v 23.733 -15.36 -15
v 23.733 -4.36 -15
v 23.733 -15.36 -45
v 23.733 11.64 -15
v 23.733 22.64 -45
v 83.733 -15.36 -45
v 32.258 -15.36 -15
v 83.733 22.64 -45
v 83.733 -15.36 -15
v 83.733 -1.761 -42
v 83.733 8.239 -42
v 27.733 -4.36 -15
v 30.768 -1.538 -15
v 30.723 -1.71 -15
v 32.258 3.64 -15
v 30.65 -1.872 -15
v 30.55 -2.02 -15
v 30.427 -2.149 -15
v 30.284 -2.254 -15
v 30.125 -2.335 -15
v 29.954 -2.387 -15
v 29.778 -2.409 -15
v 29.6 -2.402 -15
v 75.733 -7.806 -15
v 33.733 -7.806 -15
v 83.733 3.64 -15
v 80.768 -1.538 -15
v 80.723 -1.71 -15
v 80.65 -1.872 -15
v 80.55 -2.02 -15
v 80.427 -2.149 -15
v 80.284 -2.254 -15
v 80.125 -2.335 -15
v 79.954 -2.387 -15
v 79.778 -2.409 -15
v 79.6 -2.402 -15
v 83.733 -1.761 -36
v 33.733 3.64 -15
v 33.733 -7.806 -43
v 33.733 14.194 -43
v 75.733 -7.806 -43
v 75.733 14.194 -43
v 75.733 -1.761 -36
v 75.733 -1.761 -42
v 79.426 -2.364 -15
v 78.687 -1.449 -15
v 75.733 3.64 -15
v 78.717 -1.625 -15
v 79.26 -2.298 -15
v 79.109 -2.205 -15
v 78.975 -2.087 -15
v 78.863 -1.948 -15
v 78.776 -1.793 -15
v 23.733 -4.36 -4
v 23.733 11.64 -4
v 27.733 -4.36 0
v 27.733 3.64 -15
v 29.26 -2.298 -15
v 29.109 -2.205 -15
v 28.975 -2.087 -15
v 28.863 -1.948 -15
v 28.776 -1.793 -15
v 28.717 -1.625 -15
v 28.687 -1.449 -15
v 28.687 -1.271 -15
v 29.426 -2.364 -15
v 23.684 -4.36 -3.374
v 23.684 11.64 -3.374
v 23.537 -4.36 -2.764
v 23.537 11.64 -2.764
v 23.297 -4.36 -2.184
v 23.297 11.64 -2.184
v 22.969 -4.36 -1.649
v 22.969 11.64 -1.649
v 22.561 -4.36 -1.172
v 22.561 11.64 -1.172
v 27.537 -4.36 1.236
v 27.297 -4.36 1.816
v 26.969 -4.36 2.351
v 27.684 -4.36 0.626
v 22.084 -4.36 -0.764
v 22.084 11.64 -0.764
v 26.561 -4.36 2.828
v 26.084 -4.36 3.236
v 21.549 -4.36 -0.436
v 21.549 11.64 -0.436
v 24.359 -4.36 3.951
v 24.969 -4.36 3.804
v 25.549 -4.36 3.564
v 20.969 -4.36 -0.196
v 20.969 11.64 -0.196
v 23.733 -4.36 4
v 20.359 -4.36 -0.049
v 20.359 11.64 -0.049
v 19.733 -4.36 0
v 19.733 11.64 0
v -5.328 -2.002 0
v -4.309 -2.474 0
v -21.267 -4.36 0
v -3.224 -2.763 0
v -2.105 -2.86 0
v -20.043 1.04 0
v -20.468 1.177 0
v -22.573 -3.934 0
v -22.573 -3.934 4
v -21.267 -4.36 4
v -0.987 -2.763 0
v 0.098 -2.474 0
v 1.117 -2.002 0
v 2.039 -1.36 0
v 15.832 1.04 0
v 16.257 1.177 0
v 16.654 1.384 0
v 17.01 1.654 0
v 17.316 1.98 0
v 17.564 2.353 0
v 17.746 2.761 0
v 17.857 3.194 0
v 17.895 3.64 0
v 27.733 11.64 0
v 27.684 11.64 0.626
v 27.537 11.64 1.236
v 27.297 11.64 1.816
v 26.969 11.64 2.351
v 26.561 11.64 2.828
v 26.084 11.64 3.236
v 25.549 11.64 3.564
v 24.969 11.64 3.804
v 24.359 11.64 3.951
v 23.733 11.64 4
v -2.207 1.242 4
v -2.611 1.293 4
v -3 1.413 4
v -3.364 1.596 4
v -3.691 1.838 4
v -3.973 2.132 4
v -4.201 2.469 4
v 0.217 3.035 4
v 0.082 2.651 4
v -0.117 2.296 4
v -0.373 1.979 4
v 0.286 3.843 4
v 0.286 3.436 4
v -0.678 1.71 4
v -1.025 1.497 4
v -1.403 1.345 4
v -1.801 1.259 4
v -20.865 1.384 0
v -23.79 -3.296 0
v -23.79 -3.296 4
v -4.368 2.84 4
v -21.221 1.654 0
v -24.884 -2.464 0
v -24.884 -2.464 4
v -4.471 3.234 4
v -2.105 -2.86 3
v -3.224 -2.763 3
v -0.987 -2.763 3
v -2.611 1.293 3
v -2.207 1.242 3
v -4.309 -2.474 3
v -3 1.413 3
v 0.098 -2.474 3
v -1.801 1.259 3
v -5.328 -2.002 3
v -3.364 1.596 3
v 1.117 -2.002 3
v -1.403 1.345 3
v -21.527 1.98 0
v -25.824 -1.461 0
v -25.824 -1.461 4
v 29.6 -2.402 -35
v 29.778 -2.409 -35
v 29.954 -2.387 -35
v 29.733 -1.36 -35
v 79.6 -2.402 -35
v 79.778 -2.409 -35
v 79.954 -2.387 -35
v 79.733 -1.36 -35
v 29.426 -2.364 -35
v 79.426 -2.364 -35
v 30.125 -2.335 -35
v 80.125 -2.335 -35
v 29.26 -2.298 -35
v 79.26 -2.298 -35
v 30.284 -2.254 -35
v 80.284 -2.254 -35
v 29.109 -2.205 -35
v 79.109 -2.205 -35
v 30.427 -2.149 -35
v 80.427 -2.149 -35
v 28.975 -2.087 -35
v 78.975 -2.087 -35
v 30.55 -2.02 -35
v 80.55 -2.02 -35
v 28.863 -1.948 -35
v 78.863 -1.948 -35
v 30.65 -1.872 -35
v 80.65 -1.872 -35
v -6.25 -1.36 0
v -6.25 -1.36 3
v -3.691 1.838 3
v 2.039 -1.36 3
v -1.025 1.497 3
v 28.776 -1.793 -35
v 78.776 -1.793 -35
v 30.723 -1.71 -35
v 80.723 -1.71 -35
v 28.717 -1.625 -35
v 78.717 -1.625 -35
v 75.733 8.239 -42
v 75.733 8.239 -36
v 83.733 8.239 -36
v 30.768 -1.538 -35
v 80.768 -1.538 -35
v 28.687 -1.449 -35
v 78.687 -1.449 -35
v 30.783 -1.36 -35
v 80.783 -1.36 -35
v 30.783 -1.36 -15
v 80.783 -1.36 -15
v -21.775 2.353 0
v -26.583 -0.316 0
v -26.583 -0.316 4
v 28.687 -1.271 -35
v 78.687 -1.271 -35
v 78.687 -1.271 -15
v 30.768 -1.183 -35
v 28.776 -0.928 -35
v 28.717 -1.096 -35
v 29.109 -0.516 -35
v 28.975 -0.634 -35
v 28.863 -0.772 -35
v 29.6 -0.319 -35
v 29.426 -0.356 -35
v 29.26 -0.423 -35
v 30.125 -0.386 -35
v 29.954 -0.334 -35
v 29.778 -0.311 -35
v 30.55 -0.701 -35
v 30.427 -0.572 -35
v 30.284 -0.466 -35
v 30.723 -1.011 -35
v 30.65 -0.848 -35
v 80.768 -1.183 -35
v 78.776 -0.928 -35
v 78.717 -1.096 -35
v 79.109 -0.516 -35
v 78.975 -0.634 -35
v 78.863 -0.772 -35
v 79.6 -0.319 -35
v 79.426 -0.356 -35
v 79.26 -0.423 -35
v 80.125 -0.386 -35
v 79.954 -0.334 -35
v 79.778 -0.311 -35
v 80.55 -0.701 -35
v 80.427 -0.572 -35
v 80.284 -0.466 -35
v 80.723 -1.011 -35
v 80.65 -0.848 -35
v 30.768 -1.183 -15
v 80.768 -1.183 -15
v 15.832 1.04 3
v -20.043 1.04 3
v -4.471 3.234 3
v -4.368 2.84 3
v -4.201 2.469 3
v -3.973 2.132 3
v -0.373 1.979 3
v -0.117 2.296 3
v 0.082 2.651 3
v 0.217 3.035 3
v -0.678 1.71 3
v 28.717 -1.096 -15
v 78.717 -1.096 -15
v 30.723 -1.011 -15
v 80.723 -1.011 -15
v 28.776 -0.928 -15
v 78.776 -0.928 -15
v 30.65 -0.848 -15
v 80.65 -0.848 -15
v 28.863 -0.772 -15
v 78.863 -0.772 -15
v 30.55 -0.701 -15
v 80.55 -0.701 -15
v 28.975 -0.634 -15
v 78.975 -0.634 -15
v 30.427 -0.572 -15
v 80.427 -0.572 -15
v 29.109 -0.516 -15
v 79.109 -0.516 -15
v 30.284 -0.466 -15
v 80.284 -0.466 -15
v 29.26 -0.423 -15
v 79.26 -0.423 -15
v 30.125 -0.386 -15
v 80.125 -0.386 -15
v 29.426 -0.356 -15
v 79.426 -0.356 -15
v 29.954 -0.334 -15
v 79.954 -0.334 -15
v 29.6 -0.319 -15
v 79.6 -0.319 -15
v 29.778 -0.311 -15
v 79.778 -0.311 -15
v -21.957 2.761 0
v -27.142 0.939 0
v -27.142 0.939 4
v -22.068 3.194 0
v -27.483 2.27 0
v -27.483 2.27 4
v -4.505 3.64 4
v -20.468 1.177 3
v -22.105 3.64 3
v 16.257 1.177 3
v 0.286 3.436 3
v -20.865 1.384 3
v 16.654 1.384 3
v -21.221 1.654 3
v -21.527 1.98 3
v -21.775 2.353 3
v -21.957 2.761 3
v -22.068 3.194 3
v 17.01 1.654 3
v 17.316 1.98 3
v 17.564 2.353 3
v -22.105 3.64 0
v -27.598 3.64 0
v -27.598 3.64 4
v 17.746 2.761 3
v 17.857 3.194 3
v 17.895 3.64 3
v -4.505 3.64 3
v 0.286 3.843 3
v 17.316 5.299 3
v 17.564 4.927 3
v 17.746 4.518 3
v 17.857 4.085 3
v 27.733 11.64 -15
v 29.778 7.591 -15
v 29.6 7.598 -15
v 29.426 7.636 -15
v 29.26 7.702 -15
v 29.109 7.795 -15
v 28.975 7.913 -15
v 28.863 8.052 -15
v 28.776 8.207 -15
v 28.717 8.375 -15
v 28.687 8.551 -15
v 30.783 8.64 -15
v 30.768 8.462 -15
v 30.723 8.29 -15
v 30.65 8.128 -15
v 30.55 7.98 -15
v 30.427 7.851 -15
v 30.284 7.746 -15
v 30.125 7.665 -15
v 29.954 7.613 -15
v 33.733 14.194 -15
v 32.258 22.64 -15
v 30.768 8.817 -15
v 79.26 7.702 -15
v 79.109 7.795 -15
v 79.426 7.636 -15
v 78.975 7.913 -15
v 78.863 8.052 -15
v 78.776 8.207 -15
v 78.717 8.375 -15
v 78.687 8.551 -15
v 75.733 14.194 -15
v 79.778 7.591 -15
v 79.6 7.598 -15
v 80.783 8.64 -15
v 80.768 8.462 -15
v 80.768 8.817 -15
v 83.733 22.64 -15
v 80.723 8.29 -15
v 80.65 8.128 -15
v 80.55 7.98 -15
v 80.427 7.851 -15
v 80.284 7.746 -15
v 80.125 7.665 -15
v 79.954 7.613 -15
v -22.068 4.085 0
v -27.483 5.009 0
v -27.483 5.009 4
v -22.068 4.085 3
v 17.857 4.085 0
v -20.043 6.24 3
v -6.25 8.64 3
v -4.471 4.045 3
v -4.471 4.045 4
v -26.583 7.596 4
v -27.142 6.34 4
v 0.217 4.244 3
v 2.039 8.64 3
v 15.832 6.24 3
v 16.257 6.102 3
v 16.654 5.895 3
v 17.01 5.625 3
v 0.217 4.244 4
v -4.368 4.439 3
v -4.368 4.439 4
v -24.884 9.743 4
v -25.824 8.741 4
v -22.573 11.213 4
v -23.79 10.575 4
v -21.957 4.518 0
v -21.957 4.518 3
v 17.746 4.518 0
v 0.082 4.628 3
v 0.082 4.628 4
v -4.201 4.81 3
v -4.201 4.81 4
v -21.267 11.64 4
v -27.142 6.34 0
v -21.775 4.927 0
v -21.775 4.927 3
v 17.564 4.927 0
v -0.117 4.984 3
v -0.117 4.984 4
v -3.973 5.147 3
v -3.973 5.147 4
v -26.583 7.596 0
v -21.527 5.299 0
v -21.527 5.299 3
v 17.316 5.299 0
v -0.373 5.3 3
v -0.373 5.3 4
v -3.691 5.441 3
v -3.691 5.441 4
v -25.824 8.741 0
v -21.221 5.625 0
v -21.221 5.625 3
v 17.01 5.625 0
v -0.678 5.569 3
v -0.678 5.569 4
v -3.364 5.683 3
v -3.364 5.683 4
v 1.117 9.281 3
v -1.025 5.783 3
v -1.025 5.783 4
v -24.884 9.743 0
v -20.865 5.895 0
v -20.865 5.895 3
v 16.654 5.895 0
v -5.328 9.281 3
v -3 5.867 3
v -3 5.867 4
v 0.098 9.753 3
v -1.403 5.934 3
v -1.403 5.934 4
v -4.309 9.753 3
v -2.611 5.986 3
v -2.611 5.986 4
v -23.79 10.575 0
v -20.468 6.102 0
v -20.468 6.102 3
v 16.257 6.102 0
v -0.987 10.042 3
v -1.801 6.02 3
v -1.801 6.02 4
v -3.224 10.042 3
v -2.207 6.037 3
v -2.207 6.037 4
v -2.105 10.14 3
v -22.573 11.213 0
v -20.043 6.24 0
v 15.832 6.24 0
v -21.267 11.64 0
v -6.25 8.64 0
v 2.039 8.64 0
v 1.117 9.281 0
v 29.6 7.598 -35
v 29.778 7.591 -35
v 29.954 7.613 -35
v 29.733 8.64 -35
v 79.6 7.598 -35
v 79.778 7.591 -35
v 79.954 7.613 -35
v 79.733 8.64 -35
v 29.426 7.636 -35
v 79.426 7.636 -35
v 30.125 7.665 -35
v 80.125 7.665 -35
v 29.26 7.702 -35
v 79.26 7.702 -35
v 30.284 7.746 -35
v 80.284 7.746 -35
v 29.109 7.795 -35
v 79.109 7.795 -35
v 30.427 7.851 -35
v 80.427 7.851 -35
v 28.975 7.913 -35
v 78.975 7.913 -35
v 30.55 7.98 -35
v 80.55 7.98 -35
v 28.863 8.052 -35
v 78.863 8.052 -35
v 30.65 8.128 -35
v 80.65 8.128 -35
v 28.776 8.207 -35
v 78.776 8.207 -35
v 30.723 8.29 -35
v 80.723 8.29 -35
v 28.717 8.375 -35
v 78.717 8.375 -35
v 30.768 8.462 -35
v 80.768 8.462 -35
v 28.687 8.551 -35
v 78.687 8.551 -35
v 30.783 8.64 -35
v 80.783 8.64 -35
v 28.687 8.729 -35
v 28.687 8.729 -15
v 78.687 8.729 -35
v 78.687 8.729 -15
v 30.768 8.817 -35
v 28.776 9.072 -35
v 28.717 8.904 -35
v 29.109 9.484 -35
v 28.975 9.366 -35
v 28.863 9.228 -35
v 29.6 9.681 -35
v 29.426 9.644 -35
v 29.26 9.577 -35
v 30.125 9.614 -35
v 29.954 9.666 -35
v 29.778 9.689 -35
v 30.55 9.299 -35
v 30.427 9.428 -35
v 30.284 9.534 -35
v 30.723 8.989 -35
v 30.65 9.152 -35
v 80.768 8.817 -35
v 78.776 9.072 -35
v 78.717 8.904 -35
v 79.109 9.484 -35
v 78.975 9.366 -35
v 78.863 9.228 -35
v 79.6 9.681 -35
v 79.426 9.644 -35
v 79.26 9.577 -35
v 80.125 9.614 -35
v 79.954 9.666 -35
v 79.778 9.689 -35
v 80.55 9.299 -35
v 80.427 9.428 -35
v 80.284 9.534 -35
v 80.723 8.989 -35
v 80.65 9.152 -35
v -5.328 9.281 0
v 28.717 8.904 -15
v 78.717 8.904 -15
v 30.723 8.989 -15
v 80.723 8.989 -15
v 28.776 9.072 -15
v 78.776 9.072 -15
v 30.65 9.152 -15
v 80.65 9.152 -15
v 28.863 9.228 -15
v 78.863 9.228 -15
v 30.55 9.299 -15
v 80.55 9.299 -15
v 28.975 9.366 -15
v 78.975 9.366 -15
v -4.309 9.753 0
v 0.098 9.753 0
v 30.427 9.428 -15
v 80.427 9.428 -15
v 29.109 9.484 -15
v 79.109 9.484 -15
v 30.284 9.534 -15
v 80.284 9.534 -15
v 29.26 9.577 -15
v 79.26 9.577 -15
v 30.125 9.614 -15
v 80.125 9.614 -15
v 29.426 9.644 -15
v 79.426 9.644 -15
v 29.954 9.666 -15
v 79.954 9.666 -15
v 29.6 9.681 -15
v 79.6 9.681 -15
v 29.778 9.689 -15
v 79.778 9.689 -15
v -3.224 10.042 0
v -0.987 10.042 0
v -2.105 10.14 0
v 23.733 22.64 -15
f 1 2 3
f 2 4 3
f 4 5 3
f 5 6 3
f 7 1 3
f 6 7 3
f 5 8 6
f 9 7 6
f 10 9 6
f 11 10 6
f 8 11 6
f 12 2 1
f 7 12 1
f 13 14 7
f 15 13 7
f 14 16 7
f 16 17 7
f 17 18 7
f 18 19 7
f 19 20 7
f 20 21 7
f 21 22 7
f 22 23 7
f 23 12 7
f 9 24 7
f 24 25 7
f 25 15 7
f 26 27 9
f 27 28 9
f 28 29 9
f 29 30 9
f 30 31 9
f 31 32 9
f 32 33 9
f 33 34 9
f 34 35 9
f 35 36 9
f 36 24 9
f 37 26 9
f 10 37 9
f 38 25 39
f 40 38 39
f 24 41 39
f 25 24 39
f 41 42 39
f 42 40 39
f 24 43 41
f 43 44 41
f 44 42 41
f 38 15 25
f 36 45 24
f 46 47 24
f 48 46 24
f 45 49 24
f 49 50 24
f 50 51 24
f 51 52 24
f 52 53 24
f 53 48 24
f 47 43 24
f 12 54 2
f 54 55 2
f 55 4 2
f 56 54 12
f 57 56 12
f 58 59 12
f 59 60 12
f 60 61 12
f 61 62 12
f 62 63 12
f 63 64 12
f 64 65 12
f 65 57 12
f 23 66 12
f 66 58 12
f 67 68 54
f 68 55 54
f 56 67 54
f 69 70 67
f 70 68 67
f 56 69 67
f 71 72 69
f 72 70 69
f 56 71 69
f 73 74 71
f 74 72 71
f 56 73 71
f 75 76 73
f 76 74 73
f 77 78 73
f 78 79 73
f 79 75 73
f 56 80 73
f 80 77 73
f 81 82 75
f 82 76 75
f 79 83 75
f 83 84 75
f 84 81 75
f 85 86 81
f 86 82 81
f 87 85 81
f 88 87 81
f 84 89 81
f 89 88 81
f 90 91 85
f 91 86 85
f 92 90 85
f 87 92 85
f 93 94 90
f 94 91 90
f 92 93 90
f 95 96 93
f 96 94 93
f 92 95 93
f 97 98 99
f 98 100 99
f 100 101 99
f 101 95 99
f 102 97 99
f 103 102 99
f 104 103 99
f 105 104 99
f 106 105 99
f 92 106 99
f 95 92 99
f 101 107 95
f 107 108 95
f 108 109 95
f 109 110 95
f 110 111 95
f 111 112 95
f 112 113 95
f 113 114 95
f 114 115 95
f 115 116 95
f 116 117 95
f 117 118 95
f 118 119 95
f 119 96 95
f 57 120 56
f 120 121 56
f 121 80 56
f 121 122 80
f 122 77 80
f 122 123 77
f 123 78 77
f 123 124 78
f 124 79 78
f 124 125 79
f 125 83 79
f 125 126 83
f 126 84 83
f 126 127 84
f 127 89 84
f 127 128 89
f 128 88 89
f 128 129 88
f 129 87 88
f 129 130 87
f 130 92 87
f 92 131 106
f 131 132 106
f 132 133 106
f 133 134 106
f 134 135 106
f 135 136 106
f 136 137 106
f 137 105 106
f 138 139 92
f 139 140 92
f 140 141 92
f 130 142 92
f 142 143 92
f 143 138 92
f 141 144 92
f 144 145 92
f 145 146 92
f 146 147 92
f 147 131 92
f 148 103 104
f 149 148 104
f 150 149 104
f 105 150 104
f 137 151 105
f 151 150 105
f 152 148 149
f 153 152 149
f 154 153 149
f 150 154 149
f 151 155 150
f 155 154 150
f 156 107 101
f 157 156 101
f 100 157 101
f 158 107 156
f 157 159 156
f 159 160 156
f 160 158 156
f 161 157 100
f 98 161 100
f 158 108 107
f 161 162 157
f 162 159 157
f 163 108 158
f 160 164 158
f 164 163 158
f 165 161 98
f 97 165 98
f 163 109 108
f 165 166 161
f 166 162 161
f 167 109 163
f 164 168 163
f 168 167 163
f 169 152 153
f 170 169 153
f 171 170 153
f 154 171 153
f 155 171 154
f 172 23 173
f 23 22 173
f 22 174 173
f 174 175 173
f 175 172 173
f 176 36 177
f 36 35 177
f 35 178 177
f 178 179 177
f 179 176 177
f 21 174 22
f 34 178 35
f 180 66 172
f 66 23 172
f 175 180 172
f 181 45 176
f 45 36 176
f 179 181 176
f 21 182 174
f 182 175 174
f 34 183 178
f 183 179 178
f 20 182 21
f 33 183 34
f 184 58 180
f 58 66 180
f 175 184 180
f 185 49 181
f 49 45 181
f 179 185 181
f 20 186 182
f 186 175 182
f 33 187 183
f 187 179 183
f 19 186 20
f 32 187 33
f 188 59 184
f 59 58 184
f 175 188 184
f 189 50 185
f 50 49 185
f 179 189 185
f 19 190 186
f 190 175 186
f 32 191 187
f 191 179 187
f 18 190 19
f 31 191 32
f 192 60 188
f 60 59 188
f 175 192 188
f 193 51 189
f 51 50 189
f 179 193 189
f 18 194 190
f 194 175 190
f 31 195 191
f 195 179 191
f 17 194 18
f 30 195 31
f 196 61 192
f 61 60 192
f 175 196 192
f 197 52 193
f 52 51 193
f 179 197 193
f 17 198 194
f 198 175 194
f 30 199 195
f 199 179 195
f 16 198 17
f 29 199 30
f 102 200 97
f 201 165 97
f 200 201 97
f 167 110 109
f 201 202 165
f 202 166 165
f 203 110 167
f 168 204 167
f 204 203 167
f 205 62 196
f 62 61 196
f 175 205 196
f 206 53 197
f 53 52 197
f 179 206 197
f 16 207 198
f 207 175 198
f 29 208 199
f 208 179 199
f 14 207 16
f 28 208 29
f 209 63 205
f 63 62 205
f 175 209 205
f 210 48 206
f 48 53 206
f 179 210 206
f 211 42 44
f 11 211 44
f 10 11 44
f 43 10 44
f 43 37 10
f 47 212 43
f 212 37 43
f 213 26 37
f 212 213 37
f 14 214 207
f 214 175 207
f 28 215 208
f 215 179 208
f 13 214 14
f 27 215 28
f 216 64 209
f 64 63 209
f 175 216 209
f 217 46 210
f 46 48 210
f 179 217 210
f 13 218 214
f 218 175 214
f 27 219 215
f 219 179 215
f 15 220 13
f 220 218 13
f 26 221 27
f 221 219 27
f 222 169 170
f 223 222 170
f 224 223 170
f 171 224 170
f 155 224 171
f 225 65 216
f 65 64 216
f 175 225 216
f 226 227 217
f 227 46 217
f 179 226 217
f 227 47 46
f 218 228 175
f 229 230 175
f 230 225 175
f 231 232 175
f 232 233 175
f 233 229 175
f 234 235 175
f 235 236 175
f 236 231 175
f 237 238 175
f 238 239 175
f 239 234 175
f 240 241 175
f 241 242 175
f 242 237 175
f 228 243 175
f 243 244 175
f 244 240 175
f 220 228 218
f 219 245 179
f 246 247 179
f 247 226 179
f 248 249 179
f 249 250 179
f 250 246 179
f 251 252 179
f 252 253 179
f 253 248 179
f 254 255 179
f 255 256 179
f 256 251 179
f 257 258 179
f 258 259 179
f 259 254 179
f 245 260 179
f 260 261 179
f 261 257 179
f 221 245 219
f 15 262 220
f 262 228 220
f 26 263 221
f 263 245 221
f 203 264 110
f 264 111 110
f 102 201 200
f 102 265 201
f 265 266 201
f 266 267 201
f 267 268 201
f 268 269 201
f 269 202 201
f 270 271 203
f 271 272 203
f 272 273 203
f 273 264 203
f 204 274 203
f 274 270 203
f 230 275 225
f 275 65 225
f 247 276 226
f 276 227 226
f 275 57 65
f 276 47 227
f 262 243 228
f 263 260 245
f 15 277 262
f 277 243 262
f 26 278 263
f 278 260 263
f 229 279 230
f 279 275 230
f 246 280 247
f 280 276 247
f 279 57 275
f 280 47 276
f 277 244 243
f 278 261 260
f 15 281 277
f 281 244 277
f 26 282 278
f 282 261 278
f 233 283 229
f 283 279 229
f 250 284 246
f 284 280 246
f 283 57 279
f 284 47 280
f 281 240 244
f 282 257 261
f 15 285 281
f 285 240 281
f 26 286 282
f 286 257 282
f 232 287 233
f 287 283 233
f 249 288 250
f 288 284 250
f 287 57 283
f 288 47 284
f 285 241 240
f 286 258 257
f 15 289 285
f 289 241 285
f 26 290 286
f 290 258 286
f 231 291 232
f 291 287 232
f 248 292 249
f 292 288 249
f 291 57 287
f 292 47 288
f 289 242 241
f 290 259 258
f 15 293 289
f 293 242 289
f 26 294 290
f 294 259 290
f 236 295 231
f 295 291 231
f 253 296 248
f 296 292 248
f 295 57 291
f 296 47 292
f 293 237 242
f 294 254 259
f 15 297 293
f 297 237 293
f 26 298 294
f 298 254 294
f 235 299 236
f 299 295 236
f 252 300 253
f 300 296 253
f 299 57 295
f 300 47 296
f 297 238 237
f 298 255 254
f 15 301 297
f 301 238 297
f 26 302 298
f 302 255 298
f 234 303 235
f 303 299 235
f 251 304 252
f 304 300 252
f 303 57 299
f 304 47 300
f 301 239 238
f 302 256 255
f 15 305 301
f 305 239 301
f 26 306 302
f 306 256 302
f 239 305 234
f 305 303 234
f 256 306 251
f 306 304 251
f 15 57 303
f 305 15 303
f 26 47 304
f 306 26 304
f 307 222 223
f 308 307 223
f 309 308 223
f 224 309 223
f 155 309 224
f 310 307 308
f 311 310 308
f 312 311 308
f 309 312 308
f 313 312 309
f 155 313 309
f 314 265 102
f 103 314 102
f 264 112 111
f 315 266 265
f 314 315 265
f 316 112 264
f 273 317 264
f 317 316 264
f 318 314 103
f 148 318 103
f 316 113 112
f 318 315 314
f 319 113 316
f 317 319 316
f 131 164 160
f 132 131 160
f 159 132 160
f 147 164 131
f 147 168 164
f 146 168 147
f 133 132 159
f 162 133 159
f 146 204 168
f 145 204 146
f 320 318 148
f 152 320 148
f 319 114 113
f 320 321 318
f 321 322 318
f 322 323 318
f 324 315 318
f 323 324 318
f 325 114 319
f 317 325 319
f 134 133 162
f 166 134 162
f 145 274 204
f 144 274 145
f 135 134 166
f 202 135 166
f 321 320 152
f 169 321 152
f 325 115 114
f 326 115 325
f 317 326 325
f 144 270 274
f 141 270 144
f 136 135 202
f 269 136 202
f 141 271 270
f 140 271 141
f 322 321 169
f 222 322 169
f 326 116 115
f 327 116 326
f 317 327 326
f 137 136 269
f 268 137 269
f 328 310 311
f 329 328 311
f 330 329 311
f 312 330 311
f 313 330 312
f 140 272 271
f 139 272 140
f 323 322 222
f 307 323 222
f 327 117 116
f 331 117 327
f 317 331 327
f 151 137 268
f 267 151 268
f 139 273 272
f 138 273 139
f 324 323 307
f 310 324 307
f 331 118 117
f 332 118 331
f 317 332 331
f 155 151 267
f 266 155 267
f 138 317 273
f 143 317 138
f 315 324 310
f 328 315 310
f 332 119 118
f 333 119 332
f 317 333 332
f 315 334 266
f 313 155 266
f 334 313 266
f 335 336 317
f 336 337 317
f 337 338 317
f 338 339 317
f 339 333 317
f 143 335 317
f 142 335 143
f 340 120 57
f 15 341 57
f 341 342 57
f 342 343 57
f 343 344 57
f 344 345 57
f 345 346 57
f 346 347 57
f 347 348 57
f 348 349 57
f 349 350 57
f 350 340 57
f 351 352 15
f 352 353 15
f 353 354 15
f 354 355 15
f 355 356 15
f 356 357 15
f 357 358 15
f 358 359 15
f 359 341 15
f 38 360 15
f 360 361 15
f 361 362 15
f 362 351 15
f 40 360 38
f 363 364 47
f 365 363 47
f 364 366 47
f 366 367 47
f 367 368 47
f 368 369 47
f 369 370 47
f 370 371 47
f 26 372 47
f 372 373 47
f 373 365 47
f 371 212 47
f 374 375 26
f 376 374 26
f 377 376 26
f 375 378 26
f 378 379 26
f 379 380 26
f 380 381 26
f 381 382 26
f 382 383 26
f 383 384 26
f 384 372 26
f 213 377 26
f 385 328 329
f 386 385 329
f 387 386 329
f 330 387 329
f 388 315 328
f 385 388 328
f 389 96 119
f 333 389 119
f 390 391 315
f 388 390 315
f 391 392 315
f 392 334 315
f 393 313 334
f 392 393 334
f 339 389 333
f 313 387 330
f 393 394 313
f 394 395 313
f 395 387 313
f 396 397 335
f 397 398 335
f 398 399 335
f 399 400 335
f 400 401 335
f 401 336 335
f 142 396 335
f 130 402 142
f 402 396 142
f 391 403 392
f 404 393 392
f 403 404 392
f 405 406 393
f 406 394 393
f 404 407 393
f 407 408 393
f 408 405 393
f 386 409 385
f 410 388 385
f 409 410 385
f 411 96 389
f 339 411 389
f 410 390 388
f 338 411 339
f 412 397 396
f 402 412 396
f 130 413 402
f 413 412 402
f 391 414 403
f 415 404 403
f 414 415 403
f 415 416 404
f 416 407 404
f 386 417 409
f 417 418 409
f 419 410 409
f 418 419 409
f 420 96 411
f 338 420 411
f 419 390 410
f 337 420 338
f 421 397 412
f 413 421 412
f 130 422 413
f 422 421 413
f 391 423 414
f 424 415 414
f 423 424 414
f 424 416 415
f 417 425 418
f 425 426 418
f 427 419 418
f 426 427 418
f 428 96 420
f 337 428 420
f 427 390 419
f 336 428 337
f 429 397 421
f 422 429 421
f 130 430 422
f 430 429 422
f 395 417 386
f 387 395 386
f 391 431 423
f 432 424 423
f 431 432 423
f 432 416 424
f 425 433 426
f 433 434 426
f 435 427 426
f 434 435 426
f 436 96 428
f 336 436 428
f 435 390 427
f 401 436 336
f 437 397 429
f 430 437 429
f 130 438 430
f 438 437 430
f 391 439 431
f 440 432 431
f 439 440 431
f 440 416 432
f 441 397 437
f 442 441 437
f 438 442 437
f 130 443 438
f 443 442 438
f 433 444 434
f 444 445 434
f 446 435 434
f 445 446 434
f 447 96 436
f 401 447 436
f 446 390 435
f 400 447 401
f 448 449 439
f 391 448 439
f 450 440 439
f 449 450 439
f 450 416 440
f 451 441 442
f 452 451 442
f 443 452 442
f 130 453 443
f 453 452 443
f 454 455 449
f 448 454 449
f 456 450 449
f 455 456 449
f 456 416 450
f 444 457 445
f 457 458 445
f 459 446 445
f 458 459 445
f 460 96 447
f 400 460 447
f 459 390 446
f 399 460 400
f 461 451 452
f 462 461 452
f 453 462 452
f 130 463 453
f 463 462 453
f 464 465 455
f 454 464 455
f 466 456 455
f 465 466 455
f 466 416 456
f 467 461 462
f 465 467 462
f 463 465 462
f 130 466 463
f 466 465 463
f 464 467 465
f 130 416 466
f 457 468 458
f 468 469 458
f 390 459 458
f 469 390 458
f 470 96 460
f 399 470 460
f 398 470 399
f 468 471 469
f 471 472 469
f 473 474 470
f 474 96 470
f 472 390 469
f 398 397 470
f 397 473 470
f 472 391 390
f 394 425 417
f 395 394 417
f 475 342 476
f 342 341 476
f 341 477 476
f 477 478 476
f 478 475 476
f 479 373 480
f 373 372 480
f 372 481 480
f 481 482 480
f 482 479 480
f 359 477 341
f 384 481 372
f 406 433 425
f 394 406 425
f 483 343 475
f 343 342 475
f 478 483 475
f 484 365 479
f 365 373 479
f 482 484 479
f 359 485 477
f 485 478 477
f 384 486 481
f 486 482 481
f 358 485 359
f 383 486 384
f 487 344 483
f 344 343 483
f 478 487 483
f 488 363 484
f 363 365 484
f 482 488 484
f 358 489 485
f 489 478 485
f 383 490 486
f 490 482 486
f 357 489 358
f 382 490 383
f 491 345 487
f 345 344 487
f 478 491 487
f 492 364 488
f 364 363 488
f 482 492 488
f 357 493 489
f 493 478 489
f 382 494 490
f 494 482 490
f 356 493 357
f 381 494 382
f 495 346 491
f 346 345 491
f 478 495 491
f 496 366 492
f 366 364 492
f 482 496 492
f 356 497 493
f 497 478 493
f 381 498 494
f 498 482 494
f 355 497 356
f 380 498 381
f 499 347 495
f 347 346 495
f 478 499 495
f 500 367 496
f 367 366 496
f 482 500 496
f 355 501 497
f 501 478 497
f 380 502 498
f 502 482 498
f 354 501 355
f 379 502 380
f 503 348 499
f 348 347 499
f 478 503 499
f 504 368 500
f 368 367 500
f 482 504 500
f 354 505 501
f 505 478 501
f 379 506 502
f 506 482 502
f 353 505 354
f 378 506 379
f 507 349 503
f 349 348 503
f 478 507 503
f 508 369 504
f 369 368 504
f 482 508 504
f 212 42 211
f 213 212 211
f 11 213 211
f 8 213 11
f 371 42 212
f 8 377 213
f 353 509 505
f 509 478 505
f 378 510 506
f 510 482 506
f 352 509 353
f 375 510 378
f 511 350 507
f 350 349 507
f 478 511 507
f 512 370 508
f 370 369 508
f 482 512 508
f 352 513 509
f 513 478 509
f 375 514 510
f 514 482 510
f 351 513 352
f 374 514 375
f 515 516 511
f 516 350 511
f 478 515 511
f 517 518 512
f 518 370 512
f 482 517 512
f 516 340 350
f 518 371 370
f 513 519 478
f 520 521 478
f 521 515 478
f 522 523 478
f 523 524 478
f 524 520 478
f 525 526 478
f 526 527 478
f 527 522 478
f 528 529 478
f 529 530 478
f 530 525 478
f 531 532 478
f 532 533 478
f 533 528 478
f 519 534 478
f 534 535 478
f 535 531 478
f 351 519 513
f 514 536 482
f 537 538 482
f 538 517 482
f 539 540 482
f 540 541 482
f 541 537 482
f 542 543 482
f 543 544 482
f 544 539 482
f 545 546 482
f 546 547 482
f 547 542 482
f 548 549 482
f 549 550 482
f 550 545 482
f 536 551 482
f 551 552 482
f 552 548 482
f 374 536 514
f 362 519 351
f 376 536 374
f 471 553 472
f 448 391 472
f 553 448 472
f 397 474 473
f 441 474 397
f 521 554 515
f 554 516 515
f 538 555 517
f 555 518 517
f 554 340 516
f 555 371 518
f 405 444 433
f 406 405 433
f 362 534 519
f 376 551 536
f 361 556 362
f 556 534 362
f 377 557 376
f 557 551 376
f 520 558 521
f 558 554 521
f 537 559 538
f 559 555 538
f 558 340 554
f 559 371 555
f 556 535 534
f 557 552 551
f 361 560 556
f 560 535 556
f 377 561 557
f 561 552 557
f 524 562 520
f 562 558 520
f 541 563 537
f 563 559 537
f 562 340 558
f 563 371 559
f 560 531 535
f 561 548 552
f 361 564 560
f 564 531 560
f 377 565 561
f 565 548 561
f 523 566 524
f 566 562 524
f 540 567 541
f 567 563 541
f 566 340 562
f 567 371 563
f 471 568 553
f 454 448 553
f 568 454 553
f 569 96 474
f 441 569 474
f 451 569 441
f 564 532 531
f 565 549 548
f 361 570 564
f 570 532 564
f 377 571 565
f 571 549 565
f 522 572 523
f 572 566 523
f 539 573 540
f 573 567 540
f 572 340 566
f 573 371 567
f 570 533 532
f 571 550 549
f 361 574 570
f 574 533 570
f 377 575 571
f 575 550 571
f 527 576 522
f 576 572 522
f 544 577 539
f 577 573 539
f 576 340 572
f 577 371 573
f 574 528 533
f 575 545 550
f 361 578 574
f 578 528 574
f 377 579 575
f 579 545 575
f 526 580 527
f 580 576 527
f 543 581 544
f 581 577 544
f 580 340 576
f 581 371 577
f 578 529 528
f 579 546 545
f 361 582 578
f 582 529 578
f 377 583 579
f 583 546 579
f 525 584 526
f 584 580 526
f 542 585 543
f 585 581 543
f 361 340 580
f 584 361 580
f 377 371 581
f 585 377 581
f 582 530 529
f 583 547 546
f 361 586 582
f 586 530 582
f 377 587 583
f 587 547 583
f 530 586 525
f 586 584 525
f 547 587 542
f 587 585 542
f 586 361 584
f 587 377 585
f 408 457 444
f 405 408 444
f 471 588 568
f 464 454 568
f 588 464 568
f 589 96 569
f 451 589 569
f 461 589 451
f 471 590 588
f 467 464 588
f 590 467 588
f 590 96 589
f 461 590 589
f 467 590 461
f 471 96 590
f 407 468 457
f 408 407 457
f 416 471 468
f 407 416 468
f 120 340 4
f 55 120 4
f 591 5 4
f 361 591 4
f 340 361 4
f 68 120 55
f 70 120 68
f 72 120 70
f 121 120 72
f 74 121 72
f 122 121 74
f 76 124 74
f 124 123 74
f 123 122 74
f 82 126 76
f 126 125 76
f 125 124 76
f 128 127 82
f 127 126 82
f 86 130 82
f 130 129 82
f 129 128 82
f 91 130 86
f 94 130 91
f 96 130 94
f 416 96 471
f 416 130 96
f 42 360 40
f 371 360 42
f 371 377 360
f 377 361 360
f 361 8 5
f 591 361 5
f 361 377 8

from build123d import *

# Parameters (mm, degrees)
BOSS_EXTRUDE1_DEPTH  = 4
CUT_EXTRUDE1_DEPTH   = 3
SKETCH5_W            = 49
SKETCH5_H            = 16
BOSS_EXTRUDE2_DEPTH  = 4
BOSS_EXTRUDE15_DEPTH = 30
SKETCH20_R           = 2.4
CUT_EXTRUDE26_DEPTH  = 1
FILLET8_R            = 4
FILLET12_R           = 4
CUT_EXTRUDE_8_DEPTH  = 28
SKETCH_6_R           = 1.05
CUT_EXTRUDE_9_DEPTH  = 20
SKETCH_8_W           = 6
SKETCH_8_H           = 10
CUT_EXTRUDE_10_DEPTH = 8


with BuildPart() as part:
    # Sketch2 → Boss-Extrude1 (new body)
    with BuildSketch(Plane.XY):
        with BuildLine():
            Line((23.733047461, 11.63962887), (23.733047461, -4.36037113))
            Line((23.733047461, -4.36037113), (-21.266952539, -4.36037113))
            ThreePointArc((-21.266952539, -4.36037113), (-27.597931628, 3.63962887), (-21.266952539, 11.63962887))
            Line((-21.266952539, 11.63962887), (23.733047461, 11.63962887))
        make_face()
    extrude(amount=BOSS_EXTRUDE1_DEPTH)

    # Sketch1 → Cut-Extrude1 (cut)
    with BuildSketch(Plane.XY):
        with BuildLine():
            Line((-6.25004119, 8.63962887), (-20.04279291, 6.23962887))
            ThreePointArc((-20.04279291, 6.23962887), (-22.105421524, 3.63962887), (-20.04279291, 1.03962887))
            Line((-20.04279291, 1.03962887), (-6.25004119, -1.36037113))
            ThreePointArc((-6.25004119, -1.36037113), (-2.105421524, -2.86037113), (2.039198142, -1.36037113))
            Line((2.039198142, -1.36037113), (15.831949862, 1.03962887))
            ThreePointArc((15.831949862, 1.03962887), (17.894578476, 3.63962887), (15.831949862, 6.23962887))
            Line((15.831949862, 6.23962887), (2.039198142, 8.63962887))
            ThreePointArc((2.039198142, 8.63962887), (-2.105421524, 10.13962887), (-6.25004119, 8.63962887))
        make_face()
    extrude(amount=CUT_EXTRUDE1_DEPTH, mode=Mode.SUBTRACT)

    # Sketch5 → Boss-Extrude2 (add)
    with BuildSketch(Plane(origin=(23.733047461, 0, 0), x_dir=(0, 0, -1), z_dir=(1, 0, 0))):
        with Locations((20.5, 3.63962887)):
            Rectangle(SKETCH5_W, SKETCH5_H)
    extrude(amount=BOSS_EXTRUDE2_DEPTH)

    # Sketch6 → Boss-Extrude15 (add)
    with BuildSketch(Plane(origin=(0, 0, -45), x_dir=(-1, 0, 0), z_dir=(0, 0, -1))):
        Polygon((-30.946192459, -15.36037113), (-83.733047461, -15.36037113), (-83.733047461, 22.63962887), (-23.733047461, 22.63962887), (-23.733047461, -15.36037113), align=None)
    extrude(amount=-BOSS_EXTRUDE15_DEPTH)

    # Sketch20 → Cut-Extrude26 (cut)
    with BuildSketch(Plane(origin=(0, 0, 3), x_dir=(-1, 0, 0), z_dir=(0, 0, -1))):
        with Locations((2.105421524, 3.63962887)):
            Circle(SKETCH20_R)
    extrude(amount=-CUT_EXTRUDE26_DEPTH, mode=Mode.SUBTRACT)

    # Fillet8
    fillet8_edges = [part.edges().sort_by_distance(p)[0] for p in [
        (23.733047461, 3.63962887, 0),
    ]]
    fillet(fillet8_edges, radius=FILLET8_R)

    # Fillet12
    fillet12_edges = [part.edges().sort_by_distance(p)[0] for p in [
        (27.733047461, 3.63962887, 4),
    ]]
    fillet(fillet12_edges, radius=FILLET12_R)

    # 草圖5 → 除料-伸長8 (cut)
    with BuildSketch(Plane.XY.offset(-15)):
        Polygon((75.733047461, -7.806095257), (75.733047461, 14.193904743), (33.733047461, 14.193904743), (33.733047461, 3.193904743), (33.733047461, -7.806095257), align=None)
    extrude(amount=-CUT_EXTRUDE_8_DEPTH, mode=Mode.SUBTRACT)

    # 草圖6 → 除料-伸長9 (cut)
    with BuildSketch(Plane.XY.offset(-15)):
        with Locations((29.733047461, 8.63962887)):
            Circle(SKETCH_6_R)
        with Locations((29.733047461, -1.36037113)):
            Circle(SKETCH_6_R)
        with Locations((79.733047461, 8.63962887)):
            Circle(SKETCH_6_R)
        with Locations((79.733047461, -1.36037113)):
            Circle(SKETCH_6_R)
    extrude(amount=-CUT_EXTRUDE_9_DEPTH, mode=Mode.SUBTRACT)

    # 草圖8 → 除料-伸長10 (cut)
    with BuildSketch(Plane(origin=(83.733047461, 0, 0), x_dir=(0, 0, -1), z_dir=(1, 0, 0))):
        with Locations((39, 3.238584995)):
            Rectangle(SKETCH_8_W, SKETCH_8_H)
    extrude(amount=-CUT_EXTRUDE_10_DEPTH, mode=Mode.SUBTRACT)


solid = part.part
